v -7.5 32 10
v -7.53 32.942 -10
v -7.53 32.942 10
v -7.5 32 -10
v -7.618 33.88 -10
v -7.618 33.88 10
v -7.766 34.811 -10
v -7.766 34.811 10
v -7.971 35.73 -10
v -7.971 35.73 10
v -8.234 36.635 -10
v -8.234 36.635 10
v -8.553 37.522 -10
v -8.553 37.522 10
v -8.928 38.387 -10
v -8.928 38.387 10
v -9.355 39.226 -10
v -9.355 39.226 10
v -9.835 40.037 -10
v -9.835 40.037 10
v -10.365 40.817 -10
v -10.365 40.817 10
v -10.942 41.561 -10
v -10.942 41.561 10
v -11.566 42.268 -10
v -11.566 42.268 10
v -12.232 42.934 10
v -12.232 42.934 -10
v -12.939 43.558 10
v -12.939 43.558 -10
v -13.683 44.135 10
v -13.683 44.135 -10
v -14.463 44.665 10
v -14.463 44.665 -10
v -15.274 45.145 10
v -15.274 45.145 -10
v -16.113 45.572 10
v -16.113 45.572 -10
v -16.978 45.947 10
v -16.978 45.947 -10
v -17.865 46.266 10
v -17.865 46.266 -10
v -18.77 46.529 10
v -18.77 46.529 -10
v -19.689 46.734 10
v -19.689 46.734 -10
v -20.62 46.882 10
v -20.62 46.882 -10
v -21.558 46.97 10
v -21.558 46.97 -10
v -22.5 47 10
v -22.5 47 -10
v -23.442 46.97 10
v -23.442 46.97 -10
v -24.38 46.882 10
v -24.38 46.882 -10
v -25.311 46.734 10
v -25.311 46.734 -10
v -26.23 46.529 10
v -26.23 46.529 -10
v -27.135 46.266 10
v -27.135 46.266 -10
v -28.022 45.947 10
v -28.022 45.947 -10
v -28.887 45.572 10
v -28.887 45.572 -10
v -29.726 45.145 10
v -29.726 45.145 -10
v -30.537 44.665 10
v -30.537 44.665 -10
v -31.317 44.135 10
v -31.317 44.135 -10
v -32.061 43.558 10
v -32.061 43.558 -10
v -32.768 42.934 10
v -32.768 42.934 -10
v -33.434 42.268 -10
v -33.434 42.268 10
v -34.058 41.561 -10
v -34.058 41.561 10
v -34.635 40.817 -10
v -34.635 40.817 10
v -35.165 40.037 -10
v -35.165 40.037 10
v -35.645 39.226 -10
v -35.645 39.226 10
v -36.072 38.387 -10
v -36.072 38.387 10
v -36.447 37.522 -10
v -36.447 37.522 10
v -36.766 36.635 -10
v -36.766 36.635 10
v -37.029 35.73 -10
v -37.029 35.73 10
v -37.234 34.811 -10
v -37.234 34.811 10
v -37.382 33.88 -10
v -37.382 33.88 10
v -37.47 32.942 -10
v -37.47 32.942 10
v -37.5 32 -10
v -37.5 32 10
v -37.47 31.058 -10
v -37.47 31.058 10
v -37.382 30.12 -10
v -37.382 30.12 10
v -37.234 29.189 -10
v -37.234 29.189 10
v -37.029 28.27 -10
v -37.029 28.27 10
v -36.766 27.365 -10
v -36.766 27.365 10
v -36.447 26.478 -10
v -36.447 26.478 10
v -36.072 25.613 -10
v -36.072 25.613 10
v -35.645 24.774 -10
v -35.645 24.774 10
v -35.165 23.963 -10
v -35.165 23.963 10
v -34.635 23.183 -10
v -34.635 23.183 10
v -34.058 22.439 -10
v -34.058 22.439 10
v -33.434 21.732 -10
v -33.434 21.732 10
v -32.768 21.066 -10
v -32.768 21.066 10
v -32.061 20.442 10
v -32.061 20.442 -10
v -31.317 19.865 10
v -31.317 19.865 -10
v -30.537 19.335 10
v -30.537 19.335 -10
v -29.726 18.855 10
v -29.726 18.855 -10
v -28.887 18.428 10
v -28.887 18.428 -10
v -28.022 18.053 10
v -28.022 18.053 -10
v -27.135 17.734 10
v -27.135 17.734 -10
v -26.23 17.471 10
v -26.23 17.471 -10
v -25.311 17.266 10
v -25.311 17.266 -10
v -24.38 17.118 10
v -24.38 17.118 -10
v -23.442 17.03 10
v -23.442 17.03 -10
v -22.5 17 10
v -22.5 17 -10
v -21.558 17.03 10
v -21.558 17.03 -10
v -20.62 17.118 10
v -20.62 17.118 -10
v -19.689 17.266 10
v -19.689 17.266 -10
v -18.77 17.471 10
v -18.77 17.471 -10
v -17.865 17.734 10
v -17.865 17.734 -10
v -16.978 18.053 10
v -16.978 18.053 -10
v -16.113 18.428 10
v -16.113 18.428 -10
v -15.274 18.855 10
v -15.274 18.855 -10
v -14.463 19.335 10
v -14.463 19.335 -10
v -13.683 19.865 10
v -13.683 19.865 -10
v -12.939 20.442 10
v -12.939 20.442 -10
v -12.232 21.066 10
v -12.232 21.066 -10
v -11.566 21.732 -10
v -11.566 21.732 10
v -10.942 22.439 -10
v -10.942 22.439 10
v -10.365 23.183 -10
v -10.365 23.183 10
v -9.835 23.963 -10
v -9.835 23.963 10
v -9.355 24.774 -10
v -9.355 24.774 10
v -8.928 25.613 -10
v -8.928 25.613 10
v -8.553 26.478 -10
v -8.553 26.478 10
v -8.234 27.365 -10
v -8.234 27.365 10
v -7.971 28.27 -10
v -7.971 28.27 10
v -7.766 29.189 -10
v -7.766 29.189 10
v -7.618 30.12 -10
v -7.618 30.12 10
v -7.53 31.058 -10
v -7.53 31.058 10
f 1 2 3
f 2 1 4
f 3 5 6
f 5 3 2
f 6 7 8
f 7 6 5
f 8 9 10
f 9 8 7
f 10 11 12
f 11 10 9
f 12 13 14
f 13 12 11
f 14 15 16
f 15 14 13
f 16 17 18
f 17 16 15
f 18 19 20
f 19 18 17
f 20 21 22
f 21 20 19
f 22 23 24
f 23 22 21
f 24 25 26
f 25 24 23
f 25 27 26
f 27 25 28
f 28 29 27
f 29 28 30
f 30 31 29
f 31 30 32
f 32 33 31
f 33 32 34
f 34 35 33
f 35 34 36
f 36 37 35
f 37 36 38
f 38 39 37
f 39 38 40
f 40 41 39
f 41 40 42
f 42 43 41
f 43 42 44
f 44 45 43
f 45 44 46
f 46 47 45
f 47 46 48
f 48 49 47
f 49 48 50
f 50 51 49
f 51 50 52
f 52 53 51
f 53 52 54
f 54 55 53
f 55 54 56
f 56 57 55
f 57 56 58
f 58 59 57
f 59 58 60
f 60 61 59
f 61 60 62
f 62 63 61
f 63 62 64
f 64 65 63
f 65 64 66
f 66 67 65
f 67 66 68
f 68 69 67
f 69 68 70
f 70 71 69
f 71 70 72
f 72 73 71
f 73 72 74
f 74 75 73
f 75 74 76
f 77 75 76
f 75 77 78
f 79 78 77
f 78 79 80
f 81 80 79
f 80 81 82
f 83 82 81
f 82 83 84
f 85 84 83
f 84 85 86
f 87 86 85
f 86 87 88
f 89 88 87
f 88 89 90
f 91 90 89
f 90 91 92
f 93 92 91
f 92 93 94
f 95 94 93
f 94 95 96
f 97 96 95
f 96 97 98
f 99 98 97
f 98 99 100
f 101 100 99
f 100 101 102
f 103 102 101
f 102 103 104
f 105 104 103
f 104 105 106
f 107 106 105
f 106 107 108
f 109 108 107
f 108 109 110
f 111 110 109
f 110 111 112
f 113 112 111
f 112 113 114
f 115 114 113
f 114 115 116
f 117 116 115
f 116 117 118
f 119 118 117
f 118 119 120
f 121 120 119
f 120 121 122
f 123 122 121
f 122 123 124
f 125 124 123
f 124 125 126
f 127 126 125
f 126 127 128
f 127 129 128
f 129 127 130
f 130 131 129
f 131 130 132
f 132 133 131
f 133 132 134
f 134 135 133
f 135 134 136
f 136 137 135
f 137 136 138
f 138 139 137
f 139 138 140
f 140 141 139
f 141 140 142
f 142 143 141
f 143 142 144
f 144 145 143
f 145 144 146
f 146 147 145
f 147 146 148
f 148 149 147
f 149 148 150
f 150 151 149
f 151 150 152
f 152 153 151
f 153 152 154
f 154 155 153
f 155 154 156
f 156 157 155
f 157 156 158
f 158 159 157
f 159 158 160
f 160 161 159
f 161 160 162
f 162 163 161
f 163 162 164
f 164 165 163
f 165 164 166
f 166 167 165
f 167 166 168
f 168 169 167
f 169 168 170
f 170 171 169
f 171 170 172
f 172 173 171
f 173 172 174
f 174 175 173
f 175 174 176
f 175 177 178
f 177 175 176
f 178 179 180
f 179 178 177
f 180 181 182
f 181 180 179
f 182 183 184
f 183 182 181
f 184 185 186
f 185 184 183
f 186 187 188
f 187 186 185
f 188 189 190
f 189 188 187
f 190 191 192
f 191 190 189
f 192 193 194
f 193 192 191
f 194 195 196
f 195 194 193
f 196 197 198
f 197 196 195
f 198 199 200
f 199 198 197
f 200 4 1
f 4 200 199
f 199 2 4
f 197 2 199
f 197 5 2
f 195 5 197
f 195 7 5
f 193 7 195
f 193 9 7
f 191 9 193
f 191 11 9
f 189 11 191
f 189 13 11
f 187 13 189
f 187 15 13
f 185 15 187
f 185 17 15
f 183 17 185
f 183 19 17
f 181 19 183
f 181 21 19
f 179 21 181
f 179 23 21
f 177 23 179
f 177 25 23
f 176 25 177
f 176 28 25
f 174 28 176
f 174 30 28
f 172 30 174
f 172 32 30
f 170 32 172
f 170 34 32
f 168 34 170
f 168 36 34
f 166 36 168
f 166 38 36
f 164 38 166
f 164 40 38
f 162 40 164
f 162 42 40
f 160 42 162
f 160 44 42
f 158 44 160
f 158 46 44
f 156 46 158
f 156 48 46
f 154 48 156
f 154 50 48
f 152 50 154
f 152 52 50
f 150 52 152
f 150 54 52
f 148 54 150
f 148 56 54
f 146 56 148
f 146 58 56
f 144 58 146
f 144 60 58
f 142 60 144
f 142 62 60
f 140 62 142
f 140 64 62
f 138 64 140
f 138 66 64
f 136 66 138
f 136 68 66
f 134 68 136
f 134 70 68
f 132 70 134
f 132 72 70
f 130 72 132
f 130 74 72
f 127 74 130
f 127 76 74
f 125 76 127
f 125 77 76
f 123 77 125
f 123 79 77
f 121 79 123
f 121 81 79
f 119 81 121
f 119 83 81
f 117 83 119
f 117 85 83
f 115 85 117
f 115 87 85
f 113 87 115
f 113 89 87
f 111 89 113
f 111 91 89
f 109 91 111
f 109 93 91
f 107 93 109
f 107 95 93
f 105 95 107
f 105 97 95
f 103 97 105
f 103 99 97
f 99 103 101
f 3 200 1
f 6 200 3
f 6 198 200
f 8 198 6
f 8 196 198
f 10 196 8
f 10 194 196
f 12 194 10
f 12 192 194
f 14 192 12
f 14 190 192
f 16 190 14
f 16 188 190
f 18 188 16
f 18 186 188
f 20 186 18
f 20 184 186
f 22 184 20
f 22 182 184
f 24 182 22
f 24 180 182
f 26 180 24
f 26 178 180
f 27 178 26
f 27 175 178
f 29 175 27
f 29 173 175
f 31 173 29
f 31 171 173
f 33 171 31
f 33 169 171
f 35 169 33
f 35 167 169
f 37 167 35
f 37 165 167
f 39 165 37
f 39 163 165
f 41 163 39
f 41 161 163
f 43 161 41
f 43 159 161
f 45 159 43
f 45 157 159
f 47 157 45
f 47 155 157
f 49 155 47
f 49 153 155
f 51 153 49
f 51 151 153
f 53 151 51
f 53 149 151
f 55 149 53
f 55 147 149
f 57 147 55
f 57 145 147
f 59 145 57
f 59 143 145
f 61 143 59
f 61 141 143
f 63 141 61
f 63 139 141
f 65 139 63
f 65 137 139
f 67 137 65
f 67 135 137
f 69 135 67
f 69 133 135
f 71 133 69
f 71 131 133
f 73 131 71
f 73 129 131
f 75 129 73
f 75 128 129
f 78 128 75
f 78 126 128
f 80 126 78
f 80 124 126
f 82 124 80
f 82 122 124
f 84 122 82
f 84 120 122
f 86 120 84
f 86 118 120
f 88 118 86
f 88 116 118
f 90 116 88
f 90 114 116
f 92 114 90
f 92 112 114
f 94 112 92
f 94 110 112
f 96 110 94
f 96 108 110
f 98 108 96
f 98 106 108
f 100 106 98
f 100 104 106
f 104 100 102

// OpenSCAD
$fn = 100;

translate([-22.5, 32, 0])
rotate([0, 0, 0])
cylinder(20, 15, 15, true);
